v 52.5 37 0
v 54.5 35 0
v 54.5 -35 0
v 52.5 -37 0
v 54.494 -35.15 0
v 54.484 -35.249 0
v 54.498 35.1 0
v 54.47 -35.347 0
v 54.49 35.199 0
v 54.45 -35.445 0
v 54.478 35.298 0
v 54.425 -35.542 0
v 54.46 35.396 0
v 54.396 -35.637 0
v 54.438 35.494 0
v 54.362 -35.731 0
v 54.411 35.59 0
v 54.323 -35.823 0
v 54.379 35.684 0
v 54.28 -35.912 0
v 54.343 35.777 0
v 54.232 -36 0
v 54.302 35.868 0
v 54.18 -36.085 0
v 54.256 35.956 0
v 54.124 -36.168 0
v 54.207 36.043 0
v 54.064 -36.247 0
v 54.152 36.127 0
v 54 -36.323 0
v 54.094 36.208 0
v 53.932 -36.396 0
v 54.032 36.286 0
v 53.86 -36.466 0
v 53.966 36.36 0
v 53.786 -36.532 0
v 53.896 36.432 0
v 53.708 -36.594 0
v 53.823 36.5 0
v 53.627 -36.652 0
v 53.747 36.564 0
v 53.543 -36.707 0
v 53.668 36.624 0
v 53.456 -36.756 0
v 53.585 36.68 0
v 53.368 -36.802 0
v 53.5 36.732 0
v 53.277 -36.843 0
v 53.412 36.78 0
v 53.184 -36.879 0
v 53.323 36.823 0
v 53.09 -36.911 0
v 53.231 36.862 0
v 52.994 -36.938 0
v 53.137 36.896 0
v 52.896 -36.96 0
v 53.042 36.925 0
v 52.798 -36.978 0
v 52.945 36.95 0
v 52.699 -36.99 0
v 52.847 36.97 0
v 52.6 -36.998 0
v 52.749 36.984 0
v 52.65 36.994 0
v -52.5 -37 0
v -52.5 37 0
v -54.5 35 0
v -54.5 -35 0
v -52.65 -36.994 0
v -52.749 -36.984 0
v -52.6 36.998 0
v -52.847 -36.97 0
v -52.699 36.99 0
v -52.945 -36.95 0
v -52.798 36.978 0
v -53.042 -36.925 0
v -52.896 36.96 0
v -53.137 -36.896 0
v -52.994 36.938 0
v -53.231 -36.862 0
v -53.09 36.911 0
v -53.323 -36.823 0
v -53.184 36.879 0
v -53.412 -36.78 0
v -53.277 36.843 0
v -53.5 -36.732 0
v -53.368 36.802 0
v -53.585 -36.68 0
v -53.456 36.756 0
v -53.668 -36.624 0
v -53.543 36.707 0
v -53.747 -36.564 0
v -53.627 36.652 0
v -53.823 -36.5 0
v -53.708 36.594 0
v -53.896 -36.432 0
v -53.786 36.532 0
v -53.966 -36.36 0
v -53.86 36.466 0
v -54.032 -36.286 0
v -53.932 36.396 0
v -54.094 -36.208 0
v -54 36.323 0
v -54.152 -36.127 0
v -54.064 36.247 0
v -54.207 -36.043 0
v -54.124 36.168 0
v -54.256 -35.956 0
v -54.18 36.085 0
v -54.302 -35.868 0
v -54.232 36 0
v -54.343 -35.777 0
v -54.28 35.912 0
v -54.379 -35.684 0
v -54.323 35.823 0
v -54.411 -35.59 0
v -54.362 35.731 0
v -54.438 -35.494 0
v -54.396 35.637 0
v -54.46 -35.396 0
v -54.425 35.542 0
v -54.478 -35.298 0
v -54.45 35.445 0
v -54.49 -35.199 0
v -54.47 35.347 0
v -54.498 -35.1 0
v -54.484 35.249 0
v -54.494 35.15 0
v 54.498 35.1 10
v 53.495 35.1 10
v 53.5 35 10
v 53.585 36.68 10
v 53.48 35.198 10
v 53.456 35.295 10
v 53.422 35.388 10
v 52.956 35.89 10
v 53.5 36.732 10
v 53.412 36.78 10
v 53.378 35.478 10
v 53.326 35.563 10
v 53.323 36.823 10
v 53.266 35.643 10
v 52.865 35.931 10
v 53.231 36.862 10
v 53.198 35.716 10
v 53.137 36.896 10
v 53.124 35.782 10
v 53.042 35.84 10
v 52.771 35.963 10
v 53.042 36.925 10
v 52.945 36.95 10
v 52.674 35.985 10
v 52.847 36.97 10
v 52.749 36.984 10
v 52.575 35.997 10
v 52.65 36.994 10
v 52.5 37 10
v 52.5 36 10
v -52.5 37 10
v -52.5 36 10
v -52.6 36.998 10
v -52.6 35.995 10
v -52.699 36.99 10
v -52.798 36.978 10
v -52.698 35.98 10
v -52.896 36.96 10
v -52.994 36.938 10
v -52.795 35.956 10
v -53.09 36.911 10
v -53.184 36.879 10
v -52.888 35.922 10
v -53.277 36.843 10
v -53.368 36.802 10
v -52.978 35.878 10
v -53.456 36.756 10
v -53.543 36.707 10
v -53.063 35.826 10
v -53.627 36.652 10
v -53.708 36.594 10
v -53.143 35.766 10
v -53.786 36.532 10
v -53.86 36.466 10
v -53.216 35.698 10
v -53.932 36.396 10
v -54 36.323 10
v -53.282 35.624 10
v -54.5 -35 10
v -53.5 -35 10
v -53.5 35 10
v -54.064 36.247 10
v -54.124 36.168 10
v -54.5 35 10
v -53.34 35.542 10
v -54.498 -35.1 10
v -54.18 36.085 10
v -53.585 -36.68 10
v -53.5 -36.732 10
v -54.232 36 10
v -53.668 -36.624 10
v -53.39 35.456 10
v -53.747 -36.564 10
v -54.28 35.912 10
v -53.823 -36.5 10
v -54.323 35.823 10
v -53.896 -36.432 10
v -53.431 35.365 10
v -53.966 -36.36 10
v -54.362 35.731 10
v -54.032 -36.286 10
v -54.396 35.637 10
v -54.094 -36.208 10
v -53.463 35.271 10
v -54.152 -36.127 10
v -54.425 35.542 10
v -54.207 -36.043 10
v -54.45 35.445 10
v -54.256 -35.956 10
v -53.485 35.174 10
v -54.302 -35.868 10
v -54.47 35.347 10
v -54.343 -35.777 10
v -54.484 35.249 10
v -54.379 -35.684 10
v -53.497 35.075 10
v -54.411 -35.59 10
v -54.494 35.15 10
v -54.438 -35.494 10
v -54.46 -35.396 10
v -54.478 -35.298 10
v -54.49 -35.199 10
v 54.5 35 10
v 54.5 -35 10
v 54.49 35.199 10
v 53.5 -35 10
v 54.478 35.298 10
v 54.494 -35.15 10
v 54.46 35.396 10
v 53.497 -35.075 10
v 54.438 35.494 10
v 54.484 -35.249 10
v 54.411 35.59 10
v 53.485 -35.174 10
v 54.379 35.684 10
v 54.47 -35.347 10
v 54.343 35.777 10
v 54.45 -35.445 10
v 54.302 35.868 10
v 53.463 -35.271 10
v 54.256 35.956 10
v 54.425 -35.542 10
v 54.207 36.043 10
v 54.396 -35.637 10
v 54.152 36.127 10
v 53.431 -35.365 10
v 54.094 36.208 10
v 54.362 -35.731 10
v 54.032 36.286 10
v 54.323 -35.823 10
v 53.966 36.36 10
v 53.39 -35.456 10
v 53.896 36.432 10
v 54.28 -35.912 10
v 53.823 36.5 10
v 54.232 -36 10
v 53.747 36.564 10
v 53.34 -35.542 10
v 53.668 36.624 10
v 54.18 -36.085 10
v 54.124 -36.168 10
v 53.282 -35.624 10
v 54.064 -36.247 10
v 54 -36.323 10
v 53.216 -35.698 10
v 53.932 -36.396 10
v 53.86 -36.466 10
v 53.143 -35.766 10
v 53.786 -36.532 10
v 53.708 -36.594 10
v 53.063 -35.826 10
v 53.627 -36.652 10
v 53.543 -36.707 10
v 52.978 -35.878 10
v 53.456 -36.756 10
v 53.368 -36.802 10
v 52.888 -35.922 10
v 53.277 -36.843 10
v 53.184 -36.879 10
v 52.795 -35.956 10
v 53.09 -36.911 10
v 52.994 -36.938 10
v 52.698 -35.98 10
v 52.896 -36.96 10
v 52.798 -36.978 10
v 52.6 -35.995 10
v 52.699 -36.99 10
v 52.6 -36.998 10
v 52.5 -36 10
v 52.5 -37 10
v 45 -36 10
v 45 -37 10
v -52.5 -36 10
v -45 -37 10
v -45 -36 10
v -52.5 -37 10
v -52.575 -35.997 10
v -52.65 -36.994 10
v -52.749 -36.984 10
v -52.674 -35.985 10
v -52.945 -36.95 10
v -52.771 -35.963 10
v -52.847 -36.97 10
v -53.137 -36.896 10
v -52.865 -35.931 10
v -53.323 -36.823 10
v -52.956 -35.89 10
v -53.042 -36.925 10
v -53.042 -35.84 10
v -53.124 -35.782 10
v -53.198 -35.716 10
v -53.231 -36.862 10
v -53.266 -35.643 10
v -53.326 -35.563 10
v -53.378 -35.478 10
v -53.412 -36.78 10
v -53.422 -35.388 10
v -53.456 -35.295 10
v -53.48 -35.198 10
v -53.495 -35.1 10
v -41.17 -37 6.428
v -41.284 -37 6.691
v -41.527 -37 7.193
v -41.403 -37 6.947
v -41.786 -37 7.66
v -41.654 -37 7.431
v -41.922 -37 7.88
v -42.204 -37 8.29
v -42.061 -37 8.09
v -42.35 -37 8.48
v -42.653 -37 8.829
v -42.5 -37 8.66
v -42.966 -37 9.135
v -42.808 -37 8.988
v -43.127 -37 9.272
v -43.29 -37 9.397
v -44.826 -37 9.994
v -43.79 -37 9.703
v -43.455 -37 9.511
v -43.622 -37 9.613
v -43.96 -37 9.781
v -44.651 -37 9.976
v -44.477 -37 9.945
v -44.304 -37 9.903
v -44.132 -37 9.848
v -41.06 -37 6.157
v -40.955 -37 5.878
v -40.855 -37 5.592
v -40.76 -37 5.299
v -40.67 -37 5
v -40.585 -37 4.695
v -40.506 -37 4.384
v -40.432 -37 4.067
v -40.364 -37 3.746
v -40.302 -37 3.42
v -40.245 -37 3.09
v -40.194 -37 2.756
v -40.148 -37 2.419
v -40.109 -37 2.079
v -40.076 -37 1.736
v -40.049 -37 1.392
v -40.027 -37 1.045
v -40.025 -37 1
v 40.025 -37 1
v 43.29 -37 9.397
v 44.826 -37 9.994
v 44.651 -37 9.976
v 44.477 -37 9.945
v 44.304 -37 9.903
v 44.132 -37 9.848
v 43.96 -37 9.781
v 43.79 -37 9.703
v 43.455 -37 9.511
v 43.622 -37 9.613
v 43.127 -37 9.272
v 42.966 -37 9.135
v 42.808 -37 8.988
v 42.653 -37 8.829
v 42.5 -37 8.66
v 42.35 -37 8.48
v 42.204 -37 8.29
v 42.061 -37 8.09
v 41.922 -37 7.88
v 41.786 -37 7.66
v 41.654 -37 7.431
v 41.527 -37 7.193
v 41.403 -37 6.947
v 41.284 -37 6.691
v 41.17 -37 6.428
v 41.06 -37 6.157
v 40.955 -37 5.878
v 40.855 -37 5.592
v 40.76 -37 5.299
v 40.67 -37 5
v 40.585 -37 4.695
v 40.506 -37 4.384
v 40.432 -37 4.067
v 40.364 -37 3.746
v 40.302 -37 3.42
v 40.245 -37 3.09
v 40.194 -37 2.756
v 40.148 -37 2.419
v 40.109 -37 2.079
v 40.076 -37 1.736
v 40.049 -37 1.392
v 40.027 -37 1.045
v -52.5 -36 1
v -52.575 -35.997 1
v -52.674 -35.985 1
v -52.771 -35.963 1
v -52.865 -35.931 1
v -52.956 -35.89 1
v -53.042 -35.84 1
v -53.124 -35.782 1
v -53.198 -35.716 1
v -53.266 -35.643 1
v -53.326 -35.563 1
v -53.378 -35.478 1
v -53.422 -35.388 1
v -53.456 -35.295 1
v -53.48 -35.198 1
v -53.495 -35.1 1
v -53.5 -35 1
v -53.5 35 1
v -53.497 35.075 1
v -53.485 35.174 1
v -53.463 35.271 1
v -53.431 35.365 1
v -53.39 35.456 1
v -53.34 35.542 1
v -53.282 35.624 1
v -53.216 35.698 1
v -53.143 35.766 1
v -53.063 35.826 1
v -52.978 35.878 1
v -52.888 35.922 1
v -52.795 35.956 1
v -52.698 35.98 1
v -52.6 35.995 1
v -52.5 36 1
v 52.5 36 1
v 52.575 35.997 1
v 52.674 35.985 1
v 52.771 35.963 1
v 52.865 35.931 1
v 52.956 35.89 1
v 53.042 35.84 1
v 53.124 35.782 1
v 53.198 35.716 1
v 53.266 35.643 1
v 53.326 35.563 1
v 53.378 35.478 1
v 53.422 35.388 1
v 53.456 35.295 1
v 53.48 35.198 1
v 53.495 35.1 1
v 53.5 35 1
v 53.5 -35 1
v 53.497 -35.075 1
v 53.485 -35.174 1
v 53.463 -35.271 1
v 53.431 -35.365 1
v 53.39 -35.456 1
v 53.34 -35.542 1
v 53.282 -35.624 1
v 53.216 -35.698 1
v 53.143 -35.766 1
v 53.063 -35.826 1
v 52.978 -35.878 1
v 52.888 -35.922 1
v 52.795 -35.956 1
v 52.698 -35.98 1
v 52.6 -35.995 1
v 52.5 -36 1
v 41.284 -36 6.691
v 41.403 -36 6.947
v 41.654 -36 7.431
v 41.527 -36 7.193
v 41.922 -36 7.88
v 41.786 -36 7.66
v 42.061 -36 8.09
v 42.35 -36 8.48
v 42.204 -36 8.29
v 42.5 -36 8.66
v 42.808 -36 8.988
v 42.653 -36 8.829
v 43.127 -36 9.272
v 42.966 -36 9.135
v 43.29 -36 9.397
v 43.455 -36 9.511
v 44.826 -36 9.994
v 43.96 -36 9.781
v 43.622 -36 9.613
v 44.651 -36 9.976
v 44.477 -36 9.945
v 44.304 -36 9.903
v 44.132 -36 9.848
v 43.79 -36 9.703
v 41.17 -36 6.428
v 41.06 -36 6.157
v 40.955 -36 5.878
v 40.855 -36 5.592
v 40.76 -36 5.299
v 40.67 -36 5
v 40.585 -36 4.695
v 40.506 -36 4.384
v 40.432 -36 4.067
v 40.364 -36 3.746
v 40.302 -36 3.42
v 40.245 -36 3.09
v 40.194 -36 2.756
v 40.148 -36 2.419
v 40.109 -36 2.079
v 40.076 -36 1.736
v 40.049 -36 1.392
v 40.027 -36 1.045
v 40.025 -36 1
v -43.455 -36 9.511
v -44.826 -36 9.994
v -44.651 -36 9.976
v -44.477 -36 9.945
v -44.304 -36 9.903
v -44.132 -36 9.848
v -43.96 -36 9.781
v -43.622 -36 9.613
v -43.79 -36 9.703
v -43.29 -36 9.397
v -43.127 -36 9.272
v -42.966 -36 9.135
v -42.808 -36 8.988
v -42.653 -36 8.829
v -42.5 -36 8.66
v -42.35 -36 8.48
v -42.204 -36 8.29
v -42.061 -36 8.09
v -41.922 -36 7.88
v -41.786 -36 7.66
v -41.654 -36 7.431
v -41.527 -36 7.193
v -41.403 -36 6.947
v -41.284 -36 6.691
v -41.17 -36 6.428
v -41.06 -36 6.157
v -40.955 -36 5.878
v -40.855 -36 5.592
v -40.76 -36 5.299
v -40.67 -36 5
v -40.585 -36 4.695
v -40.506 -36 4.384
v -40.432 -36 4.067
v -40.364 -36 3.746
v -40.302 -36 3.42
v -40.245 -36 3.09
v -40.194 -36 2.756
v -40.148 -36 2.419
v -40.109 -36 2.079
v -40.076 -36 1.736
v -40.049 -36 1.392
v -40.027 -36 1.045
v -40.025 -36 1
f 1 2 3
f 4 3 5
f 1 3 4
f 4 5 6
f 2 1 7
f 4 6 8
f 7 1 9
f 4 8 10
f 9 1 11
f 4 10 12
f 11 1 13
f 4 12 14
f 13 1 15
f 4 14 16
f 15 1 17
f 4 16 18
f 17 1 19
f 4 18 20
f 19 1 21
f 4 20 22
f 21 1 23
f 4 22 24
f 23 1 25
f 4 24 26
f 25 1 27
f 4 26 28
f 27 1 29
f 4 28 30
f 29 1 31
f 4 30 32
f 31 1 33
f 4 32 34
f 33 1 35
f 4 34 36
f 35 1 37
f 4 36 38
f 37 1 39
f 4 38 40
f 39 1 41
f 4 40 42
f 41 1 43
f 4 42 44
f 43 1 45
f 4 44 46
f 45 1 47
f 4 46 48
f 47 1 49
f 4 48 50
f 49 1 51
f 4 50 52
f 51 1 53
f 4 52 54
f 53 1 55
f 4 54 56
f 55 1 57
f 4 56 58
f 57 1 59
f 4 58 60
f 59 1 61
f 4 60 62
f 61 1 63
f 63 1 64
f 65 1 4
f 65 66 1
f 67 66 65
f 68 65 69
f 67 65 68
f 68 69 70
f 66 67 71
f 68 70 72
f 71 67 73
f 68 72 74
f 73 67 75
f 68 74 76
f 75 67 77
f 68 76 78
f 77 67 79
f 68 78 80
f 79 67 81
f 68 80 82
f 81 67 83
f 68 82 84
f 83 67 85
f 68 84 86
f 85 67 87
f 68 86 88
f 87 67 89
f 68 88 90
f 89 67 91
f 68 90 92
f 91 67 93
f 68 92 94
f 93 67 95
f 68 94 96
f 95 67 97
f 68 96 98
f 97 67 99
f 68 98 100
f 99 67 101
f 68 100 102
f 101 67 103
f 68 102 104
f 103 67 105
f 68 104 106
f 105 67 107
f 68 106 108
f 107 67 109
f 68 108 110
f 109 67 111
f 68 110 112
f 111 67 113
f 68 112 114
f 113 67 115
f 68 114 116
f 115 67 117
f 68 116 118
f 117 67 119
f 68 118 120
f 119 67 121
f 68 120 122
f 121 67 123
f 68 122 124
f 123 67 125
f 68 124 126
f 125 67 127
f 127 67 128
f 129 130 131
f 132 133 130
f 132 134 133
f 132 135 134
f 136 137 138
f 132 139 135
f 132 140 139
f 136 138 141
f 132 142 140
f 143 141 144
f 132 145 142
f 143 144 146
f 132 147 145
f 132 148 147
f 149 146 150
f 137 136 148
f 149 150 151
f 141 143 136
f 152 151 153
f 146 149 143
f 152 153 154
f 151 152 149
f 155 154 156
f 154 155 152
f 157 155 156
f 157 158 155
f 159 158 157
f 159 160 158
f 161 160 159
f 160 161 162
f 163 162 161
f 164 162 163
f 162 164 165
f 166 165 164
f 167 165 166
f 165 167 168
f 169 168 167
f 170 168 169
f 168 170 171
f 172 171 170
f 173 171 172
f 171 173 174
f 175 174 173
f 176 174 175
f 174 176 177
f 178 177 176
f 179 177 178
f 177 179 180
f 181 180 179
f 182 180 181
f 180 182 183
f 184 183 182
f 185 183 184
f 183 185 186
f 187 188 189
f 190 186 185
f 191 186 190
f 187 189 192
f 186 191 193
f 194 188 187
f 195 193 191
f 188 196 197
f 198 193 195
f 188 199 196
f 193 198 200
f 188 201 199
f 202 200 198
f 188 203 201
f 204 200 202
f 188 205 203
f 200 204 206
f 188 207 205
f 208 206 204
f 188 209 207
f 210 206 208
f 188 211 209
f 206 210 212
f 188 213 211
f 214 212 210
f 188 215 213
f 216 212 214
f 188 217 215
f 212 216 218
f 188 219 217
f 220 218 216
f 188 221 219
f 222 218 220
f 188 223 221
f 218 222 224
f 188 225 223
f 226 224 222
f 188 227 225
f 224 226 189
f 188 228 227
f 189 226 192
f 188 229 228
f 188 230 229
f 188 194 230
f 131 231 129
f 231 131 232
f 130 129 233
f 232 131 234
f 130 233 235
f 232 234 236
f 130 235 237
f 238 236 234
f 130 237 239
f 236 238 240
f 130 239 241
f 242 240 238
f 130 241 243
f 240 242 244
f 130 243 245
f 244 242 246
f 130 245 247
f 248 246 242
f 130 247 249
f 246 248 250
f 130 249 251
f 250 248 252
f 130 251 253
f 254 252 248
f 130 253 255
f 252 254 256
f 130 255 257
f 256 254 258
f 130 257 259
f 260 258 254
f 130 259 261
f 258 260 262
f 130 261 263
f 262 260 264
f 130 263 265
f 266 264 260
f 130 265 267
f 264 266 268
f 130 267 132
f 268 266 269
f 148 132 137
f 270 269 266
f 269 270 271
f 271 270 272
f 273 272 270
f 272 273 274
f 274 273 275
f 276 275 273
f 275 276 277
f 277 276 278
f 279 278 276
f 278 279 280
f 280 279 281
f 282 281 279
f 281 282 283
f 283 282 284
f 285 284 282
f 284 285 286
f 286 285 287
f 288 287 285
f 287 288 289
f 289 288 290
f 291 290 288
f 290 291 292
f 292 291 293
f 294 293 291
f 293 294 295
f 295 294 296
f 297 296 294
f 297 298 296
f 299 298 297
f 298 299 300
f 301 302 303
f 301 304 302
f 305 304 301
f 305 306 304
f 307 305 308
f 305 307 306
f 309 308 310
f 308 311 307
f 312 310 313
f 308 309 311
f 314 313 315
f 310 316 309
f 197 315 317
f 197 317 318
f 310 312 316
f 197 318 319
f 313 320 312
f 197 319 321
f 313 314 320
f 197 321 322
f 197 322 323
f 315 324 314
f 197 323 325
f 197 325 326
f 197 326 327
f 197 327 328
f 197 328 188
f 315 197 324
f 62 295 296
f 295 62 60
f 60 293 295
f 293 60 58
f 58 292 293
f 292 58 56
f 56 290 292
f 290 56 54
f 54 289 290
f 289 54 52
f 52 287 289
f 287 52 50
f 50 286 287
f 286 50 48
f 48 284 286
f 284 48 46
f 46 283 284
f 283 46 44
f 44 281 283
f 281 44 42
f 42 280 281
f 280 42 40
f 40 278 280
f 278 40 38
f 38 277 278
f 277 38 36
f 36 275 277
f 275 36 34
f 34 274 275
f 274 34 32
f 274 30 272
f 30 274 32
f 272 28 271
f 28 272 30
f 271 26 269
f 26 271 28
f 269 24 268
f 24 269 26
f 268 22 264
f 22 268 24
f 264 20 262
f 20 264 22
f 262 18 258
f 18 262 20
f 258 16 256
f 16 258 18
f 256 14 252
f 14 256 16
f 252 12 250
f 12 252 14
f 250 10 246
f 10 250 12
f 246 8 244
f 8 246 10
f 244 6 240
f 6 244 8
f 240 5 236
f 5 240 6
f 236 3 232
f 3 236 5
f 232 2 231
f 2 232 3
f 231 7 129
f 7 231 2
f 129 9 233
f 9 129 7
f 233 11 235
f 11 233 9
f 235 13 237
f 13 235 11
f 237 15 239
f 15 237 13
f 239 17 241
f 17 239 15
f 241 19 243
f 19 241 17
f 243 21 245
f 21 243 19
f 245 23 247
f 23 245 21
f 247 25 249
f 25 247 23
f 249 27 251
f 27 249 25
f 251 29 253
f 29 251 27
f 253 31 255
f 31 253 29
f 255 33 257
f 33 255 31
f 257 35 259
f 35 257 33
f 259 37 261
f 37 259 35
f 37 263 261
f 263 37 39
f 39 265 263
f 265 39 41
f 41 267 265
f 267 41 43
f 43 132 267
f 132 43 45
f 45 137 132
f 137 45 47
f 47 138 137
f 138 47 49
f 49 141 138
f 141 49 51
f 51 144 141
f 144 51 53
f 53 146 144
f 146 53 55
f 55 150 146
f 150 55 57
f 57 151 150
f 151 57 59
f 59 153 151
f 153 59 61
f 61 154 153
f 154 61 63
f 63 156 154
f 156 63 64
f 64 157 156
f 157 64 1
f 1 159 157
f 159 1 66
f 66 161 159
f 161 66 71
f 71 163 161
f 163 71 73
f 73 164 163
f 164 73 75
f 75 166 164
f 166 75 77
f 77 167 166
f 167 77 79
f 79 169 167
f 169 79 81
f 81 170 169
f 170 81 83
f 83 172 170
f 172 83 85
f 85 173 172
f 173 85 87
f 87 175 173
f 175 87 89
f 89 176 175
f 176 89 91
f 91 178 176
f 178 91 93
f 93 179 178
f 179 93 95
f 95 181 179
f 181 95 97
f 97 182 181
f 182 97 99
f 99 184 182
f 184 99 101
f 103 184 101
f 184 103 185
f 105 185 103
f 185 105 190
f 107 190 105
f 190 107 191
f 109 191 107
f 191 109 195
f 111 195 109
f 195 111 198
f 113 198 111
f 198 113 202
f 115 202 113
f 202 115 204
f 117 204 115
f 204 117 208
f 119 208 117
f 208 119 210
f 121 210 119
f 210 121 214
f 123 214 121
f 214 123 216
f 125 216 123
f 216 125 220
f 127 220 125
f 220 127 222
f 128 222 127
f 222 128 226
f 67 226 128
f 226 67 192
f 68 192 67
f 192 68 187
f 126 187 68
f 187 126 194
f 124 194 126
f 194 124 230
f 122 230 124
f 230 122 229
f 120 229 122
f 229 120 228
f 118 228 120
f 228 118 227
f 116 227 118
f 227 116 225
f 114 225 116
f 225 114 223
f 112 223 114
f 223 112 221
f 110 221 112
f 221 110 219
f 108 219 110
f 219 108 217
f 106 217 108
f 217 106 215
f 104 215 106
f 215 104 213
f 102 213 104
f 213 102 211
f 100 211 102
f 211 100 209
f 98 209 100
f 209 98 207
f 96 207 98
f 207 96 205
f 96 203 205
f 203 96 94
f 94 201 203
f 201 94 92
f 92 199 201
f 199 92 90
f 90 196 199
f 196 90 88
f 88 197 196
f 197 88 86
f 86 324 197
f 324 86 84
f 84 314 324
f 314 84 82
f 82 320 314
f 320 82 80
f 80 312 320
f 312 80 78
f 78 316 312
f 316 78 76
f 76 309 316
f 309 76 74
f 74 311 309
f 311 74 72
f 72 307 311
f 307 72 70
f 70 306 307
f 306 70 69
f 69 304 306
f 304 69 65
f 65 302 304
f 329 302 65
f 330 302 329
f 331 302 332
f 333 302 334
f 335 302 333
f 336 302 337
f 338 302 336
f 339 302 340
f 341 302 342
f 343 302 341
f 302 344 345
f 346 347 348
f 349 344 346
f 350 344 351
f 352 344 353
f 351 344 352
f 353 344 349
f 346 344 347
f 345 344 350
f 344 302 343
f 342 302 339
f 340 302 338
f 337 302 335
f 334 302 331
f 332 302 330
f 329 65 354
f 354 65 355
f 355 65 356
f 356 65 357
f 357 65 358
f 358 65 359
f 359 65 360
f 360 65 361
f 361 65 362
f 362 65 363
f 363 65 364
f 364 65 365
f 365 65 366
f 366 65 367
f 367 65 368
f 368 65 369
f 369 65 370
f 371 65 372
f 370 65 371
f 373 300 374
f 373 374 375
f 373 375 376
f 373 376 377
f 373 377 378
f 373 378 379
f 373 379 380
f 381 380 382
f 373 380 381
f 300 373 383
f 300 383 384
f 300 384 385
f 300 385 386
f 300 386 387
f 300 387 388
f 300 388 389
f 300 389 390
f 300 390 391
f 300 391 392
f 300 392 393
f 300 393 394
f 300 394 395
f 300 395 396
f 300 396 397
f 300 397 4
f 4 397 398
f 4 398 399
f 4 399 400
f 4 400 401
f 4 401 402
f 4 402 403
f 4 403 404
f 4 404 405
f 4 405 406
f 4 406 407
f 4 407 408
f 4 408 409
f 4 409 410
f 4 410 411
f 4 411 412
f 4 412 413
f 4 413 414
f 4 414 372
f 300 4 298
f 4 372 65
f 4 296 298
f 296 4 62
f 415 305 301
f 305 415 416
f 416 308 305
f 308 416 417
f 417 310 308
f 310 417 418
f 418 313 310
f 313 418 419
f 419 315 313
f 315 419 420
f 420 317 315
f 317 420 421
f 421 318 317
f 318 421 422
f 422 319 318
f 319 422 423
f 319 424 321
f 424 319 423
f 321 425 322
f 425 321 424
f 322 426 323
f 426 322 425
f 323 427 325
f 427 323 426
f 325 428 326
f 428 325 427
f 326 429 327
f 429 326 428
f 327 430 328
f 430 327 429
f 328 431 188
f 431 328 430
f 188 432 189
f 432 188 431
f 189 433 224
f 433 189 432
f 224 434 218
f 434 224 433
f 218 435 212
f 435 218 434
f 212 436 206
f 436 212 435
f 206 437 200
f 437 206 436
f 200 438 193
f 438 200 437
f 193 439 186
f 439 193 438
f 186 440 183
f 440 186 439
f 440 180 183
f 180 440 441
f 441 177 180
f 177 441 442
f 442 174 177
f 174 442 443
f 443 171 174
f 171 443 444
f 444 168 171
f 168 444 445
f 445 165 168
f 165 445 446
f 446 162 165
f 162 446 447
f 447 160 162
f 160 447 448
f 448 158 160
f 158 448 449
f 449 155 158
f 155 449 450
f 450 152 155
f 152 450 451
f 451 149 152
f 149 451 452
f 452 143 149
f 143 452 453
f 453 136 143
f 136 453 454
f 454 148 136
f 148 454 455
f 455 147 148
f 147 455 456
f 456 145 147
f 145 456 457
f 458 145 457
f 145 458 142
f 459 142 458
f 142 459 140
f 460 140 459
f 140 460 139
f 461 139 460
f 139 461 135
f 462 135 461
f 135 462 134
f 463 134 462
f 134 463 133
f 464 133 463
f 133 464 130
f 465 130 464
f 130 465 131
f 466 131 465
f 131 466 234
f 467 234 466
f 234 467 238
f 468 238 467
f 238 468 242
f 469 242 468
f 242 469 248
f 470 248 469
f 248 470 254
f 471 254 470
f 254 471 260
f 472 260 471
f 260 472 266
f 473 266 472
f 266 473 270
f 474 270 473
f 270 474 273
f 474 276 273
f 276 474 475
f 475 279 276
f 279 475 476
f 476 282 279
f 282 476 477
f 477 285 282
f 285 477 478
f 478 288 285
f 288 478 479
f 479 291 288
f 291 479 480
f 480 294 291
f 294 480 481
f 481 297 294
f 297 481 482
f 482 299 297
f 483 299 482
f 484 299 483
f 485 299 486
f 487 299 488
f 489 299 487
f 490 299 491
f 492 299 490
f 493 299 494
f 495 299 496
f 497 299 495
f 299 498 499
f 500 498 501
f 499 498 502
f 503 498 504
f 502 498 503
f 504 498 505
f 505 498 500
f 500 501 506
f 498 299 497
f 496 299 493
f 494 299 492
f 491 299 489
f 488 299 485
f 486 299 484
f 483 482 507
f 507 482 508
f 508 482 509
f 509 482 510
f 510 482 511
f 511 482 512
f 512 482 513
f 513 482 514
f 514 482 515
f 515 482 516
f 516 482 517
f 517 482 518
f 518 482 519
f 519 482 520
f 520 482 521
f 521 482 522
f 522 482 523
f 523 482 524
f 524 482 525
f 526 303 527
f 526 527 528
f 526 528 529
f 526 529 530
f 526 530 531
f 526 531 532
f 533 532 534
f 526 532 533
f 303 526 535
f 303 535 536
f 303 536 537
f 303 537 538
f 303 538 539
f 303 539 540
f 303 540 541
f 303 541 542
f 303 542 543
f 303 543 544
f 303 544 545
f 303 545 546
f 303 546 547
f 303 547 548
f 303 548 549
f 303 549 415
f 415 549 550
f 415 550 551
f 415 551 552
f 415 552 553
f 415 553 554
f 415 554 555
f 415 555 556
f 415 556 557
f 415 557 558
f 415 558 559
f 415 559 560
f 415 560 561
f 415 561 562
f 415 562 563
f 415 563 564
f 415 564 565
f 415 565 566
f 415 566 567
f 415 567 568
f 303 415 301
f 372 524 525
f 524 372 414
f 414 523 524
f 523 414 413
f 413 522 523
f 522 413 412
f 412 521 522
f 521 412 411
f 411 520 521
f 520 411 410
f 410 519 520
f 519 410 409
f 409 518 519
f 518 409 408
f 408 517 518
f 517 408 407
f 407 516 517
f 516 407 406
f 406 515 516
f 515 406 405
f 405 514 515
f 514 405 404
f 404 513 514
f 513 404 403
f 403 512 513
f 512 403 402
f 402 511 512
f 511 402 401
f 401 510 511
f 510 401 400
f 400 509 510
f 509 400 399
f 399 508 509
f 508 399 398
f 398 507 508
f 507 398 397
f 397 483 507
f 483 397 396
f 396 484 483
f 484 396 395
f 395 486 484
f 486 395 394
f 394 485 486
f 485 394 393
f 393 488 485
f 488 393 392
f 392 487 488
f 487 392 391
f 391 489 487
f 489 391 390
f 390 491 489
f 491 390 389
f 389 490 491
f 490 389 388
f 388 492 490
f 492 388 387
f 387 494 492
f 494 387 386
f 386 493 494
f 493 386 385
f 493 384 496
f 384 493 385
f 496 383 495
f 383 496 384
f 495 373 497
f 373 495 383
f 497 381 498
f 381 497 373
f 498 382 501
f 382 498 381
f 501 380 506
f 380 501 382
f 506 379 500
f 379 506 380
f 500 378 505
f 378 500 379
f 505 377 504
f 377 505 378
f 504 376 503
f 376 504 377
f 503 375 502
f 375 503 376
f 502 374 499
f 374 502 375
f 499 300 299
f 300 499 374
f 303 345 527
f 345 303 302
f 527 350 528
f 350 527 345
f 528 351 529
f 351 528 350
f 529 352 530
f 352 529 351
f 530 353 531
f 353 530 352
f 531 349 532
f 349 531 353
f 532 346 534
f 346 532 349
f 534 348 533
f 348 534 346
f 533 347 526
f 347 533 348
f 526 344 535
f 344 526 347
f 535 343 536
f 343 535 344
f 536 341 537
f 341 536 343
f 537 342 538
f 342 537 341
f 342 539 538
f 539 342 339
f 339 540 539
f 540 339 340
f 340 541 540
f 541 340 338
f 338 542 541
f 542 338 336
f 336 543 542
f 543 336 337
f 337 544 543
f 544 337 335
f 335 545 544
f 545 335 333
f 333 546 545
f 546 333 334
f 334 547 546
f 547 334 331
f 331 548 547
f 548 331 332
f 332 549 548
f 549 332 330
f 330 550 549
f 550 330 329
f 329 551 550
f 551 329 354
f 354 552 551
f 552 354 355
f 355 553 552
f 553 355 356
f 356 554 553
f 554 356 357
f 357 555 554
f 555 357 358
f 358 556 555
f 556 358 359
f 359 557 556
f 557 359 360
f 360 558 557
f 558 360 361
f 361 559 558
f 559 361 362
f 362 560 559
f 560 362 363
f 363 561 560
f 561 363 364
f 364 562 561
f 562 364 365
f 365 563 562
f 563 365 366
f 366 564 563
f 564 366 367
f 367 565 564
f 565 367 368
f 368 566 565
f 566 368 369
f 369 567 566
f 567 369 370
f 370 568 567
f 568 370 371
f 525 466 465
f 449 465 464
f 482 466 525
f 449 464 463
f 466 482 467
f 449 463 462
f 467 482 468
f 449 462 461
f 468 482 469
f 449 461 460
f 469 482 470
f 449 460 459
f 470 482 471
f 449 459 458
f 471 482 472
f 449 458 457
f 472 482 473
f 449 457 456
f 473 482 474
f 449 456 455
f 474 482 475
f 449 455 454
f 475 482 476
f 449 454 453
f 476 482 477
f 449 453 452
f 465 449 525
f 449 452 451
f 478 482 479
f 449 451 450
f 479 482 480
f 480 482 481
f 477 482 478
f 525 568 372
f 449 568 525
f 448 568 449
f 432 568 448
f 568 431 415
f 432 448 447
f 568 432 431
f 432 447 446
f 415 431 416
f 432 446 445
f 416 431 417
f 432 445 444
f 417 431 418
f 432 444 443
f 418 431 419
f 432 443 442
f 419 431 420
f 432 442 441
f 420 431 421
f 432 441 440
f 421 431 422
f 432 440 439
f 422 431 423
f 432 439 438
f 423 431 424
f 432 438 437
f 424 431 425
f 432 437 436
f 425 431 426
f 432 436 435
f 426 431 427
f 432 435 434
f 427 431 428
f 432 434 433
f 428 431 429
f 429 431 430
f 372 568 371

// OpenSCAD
// file TriangleAreaBox.scad
// This model creates a triangular open box that holds together just one
// TriangleArea triangle. 
// (c) 2020 Rich Cameron, CC-BY
// measurements in mm

base = 105;
height = 70;
thickness = 20;

$fs = .1;
$fa = 2;

size = [base, height];
wall = 1;
clearance = 1;

linear_extrude(1) offset(clearance + wall) square(size, center = true);

difference() {
	linear_extrude(10, convexity = 5) difference() {
		offset(wall + clearance) square(size, center = true);
		offset(clearance) square(size, center = true);
	}
	rotate([90, 0, 0]) linear_extrude(100) difference() {
		square(size[0] - 15, center = true);
		for(i = [0, 1]) mirror([i, 0, 0]) translate([(size[0] - 15) / 2, 0, 0]) scale([.5, 1, 1]) circle(10);
	}
}
